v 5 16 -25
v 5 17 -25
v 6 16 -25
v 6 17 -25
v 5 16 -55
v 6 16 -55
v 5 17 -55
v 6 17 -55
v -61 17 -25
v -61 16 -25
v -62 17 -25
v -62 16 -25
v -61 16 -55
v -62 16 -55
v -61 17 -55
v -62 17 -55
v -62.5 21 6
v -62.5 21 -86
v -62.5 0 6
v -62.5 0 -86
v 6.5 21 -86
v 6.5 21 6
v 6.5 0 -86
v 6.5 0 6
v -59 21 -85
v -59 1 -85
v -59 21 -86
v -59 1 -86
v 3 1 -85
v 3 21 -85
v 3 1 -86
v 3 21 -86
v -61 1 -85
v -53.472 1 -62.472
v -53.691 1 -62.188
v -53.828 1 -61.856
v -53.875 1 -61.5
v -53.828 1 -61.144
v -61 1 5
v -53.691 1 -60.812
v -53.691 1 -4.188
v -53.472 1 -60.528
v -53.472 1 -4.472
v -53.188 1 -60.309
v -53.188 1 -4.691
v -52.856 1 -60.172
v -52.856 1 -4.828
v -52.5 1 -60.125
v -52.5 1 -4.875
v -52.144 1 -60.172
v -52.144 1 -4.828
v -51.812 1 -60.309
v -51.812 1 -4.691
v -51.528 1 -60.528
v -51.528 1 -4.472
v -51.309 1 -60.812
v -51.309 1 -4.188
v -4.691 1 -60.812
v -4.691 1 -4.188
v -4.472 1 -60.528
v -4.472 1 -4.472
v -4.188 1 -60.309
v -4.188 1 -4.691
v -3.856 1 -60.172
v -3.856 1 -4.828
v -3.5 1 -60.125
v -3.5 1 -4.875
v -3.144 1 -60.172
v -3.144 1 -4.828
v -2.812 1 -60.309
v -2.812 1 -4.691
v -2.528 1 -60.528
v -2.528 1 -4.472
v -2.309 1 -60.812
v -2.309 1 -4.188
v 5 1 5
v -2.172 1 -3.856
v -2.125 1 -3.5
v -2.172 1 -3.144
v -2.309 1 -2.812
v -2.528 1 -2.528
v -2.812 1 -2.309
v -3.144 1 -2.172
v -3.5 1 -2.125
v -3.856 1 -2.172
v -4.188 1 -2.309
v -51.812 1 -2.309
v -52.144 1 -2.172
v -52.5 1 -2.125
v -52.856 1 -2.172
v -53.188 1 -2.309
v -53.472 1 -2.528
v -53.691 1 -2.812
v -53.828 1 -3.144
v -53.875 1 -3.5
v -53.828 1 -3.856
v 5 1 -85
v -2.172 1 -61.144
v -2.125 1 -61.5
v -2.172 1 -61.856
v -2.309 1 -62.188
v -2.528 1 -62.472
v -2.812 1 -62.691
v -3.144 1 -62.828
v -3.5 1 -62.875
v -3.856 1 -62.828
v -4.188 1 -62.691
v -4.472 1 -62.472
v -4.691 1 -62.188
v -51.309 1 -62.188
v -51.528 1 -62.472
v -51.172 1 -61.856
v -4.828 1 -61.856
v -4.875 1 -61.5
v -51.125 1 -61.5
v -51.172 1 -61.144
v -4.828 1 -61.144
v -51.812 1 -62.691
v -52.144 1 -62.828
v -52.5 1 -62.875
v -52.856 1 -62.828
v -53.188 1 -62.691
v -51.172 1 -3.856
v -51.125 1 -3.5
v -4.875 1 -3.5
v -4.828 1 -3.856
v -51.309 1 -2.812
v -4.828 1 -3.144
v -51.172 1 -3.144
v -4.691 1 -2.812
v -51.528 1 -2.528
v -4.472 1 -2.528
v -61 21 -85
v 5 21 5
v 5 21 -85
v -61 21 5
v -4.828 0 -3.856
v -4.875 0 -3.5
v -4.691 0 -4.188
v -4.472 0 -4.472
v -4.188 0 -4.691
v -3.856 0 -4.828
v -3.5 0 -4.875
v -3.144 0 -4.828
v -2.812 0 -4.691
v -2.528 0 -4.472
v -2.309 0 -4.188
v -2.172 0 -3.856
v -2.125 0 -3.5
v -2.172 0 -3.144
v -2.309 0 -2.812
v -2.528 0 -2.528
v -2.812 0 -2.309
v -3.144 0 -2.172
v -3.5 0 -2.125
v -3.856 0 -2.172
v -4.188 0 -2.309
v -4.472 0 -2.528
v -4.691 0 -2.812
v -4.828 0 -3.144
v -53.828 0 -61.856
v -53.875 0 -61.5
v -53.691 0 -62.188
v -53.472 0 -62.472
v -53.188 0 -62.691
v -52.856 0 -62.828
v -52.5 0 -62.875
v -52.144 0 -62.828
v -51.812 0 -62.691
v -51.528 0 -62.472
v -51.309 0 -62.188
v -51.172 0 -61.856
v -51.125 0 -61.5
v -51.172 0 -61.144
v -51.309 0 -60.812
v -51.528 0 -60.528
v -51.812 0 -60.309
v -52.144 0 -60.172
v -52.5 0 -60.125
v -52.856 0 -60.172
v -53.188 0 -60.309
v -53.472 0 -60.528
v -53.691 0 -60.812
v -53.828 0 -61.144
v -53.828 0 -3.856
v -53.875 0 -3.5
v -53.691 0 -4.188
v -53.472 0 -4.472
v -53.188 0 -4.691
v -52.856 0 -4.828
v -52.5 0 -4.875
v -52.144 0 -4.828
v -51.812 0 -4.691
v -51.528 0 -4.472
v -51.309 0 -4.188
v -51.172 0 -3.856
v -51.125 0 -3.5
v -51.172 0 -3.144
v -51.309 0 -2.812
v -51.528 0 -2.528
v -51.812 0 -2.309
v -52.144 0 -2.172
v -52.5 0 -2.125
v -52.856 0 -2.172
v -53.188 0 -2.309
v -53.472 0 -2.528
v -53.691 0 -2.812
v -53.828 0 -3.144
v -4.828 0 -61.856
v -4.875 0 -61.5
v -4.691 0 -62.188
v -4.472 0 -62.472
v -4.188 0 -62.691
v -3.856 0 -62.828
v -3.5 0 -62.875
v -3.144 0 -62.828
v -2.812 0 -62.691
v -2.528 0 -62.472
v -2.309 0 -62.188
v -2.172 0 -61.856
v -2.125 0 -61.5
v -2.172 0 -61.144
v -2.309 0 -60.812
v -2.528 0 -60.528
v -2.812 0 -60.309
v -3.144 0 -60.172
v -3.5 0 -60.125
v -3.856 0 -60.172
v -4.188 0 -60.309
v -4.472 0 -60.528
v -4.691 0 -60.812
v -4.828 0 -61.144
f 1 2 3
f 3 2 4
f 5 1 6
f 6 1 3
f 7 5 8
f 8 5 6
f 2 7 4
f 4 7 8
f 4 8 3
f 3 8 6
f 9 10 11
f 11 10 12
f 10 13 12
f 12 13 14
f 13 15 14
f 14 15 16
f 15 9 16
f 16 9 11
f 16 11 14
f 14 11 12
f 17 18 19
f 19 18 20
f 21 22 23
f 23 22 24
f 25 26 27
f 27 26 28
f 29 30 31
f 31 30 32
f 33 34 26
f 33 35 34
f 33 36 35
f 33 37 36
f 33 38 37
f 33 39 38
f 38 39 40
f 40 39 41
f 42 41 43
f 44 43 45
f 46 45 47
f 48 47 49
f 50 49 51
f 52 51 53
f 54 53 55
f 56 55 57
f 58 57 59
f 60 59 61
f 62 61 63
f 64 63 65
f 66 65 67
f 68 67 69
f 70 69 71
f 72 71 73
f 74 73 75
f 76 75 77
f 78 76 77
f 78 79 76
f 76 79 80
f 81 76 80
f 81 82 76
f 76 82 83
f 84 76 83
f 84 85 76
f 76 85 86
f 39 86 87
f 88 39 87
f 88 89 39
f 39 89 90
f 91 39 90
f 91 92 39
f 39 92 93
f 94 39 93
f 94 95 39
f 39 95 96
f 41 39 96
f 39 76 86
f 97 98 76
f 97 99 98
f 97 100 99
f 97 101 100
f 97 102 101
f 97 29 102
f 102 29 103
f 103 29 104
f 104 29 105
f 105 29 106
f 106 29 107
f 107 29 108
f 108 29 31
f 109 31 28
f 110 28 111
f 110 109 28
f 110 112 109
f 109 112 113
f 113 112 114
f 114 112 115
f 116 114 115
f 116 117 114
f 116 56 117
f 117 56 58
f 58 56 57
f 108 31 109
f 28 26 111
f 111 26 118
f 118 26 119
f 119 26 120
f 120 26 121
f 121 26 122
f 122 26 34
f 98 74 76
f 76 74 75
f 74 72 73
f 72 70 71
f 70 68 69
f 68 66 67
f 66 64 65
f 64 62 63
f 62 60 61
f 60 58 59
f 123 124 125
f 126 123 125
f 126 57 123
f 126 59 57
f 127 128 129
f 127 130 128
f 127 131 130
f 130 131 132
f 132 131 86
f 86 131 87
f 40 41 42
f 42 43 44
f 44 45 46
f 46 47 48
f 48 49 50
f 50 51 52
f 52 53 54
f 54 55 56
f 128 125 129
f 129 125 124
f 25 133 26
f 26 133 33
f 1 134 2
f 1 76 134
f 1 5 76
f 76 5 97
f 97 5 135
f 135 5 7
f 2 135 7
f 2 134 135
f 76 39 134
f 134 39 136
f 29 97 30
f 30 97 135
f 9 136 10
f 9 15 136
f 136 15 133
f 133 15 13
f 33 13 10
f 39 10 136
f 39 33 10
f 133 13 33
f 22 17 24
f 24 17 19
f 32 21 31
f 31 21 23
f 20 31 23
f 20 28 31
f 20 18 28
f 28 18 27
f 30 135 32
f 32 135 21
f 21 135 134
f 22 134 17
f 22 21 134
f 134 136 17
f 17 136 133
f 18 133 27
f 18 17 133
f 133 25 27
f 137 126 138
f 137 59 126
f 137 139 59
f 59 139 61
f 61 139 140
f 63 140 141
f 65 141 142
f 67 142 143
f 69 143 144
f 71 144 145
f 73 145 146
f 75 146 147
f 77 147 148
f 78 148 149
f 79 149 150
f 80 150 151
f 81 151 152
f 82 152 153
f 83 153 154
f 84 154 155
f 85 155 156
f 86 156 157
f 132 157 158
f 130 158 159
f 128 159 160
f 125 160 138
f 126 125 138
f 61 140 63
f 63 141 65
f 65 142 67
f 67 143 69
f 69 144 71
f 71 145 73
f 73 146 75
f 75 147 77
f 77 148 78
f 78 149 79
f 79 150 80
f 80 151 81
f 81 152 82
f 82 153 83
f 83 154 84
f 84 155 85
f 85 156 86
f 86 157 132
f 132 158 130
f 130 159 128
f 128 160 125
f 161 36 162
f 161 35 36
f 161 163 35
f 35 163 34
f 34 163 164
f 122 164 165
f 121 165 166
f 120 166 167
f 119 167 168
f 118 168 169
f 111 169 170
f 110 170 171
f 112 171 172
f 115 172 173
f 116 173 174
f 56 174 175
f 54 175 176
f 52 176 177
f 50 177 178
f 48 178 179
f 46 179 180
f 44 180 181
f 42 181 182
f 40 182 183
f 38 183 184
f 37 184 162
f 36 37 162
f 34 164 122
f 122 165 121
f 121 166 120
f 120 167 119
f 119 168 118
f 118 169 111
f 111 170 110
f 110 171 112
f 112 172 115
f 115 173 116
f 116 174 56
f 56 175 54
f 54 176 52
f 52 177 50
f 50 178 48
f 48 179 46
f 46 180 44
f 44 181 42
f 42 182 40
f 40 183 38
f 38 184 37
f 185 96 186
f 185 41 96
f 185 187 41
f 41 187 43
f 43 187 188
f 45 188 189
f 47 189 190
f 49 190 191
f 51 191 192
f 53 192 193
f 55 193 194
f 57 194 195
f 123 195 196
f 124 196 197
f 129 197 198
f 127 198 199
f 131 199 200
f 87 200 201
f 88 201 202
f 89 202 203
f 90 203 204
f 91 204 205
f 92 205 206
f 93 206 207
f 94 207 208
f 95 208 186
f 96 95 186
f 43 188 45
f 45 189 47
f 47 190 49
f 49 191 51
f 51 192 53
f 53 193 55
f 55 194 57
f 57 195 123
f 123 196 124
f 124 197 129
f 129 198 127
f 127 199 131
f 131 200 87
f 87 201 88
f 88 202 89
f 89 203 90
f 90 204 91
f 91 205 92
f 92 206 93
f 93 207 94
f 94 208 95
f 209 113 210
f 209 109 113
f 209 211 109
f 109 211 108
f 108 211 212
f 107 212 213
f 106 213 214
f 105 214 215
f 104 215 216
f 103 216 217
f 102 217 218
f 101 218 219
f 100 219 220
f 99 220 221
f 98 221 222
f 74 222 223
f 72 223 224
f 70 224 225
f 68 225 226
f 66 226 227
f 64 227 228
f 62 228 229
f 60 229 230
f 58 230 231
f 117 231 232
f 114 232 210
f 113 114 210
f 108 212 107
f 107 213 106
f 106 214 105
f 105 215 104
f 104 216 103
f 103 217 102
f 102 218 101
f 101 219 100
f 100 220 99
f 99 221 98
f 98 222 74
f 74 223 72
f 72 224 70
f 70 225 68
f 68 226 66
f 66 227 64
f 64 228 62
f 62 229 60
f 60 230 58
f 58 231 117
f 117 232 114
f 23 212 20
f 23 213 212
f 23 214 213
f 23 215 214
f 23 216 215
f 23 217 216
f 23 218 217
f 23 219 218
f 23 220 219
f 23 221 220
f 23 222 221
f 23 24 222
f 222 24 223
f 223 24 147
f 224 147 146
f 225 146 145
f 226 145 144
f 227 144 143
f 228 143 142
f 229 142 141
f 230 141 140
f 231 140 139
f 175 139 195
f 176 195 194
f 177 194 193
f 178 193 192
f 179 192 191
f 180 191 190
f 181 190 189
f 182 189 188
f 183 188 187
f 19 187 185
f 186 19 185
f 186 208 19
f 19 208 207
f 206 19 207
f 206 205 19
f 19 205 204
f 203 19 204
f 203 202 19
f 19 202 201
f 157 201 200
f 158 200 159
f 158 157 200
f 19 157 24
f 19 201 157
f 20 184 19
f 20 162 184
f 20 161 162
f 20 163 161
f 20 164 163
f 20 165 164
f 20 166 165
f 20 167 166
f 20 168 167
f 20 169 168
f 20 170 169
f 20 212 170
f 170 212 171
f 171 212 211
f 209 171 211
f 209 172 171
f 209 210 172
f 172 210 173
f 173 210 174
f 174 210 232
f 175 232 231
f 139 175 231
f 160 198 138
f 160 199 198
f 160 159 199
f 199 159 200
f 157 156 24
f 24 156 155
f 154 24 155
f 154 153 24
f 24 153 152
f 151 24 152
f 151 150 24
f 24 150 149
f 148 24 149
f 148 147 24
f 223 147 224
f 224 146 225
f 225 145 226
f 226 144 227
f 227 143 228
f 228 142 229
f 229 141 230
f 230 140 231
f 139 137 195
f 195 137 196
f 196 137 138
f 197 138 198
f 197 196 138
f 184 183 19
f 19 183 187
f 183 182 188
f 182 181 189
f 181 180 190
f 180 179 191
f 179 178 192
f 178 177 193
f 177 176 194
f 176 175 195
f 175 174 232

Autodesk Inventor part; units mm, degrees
ref_plane "YZ Plane" through (0, 0, 0) normal (1, 0, 0) x (0, 1, 0)
ref_plane "XZ Plane" through (0, 0, 0) normal (0, 1, 0) x (-1, 0, 0)
ref_plane "XY Plane" through (0, 0, 0) normal (0, 0, 1) x (1, 0, 0)
sketch "Sketch1" plane through (0, 0, 0) normal (0, 1, 0) x (-1, 0, 0)
  line L0 (0, 0) -> (56, 0)
  line L1 (56, 0) -> (56, -85)
  line L2 (56, -85) -> (0, -85)
  line L3 (0, -85) -> (0, 0)
  line L4 (61, -90) -> (61, 5)
  line L5 (61, 5) -> (-5, 5)
  line L6 (-5, 5) -> (-5, -90)
  line L7 (61, -85) -> (-5, -85)
  dimension "d0" = 56
  dimension "d1" = 85
  dimension "d2" = 5
  dimension "d50" = 90
extrude "Extrusion1" add sketch "Sketch1" along normal blind 1
sketch "Sketch2" plane through (0, 1, 0) normal (0, 1, 0) x (1, 0, 0)
  line L0 (-61, -5) -> (5, -5) projected
  line L1 (-61, 85) -> (-61, -5) projected
  line L2 (-61, -5) -> (5, -5) projected
  line L3 (5, -5) -> (5, 85) projected
  line L4 (5, 85) -> (-61, 85) projected
  line L5 (-62, 86) -> (6, 86)
  line L6 (6, 86) -> (6, -6)
  line L7 (6, -6) -> (-62, -6)
  line L8 (-62, -6) -> (-62, 86)
  point P0 (0, 0)
  dimension "d41" = 1
sketch "Sketch4" plane through (0, 1, 0) normal (0, 1, 0) x (1, 0, 0)
  line L0 (0, 0) -> (-56, 0)
  line L1 (-56, 0) -> (-56, 85)
  line L2 (-56, 85) -> (0, 85)
  line L3 (0, 85) -> (0, 0)
  circle A0 centre (-3.5, 3.5) radius 1.375
  circle A1 centre (-52.5, 3.5) radius 1.375
  circle A2 centre (-52.5, 61.5) radius 1.375
  circle A3 centre (-3.5, 61.5) radius 1.375
  circle A4 centre (-52.5, 3.5) radius 3.1
  circle A5 centre (-52.5, 61.5) radius 3.1
  circle A6 centre (-3.5, 3.5) radius 3.1
  circle A7 centre (-3.5, 61.5) radius 3.1
  dimension "d14" = 56
  dimension "d15" = 85
  dimension "d16" = 2.75
  dimension "d17" = 2.75
  dimension "d18" = 2.75
  dimension "d19" = 2.75
  dimension "d20" = 49
  dimension "d21" = 58
  dimension "d22" = 58
  dimension "d23" = 49
  dimension "d24" = 6.2
  dimension "d25" = 6.2
  dimension "d26" = 6.2
  dimension "d27" = 6.2
  dimension "d28" = 3.5
  dimension "d29" = 3.5
  dimension "d30" = 3.5
  dimension "d31" = 3.5
  dimension "d32" = 3.5
hole "Hole1" at (-52.5, 1, -61.5) at (-52.5, 1, -3.5) at (-3.5, 1, -3.5) at (-3.5, 1, -61.5) direction (0, -1, 0) diameter 2.75 end through all
extrude "Extrusion4" add sketch "Sketch2" along normal blind 20 and the other way blind 1
sketch "Sketch5" plane through (6, 21, -86) normal (0, 0, -1) x (-1, 0, 0)
  line L0 (67, -20) -> (1, -20) projected
  line L1 (68, 0) -> (0, 0) projected
  line L2 (3, -20) -> (65, -20)
  line L3 (65, -20) -> (65, 0)
  line L4 (65, 0) -> (3, 0)
  line L5 (3, 0) -> (3, -20)
  line L6 (67, 0) -> (67, -20) projected
  line L7 (1, 0) -> (1, -20) projected
  point P0 (6, -21)
  dimension "d46" = 2
  dimension "d47" = 2
extrude "Extrusion5" cut sketch "Sketch5" against normal blind 2 contours L0 L5 L1 L3
sketch "Sketch6" plane through (6, 0, -86) normal (1, 0, 0) x (0, 0, -1)
  line L0 (0, 21) -> (0, 0) projected
  line L1 (-92, 21) -> (0, 21) projected
  line L2 (-92, 21) -> (-92, 0) projected
  line L3 (0, 0) -> (-92, 0) projected
  point P0 (-86, 0)
extrude "Extrusion6" add sketch "Sketch6" along normal blind 0.5
sketch "Sketch7" plane through (-62, 0, 6) normal (-1, 0, 0) x (0, 0, 1)
  line L0 (0, 21) -> (0, 0) projected
  line L1 (-92, 21) -> (0, 21) projected
  line L2 (-92, 0) -> (-92, 21) projected
  line L3 (0, 0) -> (-92, 0) projected
  point P0 (-6, 0)
extrude "Extrusion7" add sketch "Sketch7" along normal blind 0.5
sketch "Sketch8" plane through (0, 21, 0) normal (0, 1, 0) x (1, 0, 0)
  line L0 (6.5, -6) -> (-62.5, -6) projected
  line L1 (6.5, 86) -> (6.5, -6) projected
  line L2 (-62.5, -6) -> (-62.5, 86) projected
  line L3 (-59, 86) -> (3, 86) projected
  line L4 (-59, 86) -> (-62.5, 86) projected
  line L5 (3, 86) -> (6.5, 86) projected
  point P0 (0, 0)
  dimension "d55" = 92
  dimension "d56" = 69
sketch "Sketch9" plane through (-61, 1, 5) normal (1, 0, 0) x (0, 0, -1)
  line L0 (0, 0) -> (0, 20) projected
  line L1 (90, 20) -> (90, 0) projected
  line L2 (0, 20) -> (90, 20) projected
  line L3 (30, 16) -> (60, 16)
  line L4 (60, 16) -> (60, 15)
  line L5 (60, 15) -> (30, 15)
  line L6 (30, 15) -> (30, 16)
  point P0 (5, -1)
  point P1 (0, 16)
  point P2 (90, 15)
  dimension "d62" = 4
  dimension "d63" = 1
  dimension "d64" = 30
  dimension "d65" = 30
  dimension "d66" = 30
extrude "Extrusion8" cut sketch "Sketch9" against normal blind 1
ref_plane "Work Plane2" through (-28, 0, -86) normal (1, 0, 0) x (0, 0, -1)
mirror "Mirror1" about plane through (-28, 0, -86) normal (1, 0, 0) of "Extrusion8"
equation "\"d22\" = d21"
equation "\"d23\" = d20"
properties part number "bottom1"
